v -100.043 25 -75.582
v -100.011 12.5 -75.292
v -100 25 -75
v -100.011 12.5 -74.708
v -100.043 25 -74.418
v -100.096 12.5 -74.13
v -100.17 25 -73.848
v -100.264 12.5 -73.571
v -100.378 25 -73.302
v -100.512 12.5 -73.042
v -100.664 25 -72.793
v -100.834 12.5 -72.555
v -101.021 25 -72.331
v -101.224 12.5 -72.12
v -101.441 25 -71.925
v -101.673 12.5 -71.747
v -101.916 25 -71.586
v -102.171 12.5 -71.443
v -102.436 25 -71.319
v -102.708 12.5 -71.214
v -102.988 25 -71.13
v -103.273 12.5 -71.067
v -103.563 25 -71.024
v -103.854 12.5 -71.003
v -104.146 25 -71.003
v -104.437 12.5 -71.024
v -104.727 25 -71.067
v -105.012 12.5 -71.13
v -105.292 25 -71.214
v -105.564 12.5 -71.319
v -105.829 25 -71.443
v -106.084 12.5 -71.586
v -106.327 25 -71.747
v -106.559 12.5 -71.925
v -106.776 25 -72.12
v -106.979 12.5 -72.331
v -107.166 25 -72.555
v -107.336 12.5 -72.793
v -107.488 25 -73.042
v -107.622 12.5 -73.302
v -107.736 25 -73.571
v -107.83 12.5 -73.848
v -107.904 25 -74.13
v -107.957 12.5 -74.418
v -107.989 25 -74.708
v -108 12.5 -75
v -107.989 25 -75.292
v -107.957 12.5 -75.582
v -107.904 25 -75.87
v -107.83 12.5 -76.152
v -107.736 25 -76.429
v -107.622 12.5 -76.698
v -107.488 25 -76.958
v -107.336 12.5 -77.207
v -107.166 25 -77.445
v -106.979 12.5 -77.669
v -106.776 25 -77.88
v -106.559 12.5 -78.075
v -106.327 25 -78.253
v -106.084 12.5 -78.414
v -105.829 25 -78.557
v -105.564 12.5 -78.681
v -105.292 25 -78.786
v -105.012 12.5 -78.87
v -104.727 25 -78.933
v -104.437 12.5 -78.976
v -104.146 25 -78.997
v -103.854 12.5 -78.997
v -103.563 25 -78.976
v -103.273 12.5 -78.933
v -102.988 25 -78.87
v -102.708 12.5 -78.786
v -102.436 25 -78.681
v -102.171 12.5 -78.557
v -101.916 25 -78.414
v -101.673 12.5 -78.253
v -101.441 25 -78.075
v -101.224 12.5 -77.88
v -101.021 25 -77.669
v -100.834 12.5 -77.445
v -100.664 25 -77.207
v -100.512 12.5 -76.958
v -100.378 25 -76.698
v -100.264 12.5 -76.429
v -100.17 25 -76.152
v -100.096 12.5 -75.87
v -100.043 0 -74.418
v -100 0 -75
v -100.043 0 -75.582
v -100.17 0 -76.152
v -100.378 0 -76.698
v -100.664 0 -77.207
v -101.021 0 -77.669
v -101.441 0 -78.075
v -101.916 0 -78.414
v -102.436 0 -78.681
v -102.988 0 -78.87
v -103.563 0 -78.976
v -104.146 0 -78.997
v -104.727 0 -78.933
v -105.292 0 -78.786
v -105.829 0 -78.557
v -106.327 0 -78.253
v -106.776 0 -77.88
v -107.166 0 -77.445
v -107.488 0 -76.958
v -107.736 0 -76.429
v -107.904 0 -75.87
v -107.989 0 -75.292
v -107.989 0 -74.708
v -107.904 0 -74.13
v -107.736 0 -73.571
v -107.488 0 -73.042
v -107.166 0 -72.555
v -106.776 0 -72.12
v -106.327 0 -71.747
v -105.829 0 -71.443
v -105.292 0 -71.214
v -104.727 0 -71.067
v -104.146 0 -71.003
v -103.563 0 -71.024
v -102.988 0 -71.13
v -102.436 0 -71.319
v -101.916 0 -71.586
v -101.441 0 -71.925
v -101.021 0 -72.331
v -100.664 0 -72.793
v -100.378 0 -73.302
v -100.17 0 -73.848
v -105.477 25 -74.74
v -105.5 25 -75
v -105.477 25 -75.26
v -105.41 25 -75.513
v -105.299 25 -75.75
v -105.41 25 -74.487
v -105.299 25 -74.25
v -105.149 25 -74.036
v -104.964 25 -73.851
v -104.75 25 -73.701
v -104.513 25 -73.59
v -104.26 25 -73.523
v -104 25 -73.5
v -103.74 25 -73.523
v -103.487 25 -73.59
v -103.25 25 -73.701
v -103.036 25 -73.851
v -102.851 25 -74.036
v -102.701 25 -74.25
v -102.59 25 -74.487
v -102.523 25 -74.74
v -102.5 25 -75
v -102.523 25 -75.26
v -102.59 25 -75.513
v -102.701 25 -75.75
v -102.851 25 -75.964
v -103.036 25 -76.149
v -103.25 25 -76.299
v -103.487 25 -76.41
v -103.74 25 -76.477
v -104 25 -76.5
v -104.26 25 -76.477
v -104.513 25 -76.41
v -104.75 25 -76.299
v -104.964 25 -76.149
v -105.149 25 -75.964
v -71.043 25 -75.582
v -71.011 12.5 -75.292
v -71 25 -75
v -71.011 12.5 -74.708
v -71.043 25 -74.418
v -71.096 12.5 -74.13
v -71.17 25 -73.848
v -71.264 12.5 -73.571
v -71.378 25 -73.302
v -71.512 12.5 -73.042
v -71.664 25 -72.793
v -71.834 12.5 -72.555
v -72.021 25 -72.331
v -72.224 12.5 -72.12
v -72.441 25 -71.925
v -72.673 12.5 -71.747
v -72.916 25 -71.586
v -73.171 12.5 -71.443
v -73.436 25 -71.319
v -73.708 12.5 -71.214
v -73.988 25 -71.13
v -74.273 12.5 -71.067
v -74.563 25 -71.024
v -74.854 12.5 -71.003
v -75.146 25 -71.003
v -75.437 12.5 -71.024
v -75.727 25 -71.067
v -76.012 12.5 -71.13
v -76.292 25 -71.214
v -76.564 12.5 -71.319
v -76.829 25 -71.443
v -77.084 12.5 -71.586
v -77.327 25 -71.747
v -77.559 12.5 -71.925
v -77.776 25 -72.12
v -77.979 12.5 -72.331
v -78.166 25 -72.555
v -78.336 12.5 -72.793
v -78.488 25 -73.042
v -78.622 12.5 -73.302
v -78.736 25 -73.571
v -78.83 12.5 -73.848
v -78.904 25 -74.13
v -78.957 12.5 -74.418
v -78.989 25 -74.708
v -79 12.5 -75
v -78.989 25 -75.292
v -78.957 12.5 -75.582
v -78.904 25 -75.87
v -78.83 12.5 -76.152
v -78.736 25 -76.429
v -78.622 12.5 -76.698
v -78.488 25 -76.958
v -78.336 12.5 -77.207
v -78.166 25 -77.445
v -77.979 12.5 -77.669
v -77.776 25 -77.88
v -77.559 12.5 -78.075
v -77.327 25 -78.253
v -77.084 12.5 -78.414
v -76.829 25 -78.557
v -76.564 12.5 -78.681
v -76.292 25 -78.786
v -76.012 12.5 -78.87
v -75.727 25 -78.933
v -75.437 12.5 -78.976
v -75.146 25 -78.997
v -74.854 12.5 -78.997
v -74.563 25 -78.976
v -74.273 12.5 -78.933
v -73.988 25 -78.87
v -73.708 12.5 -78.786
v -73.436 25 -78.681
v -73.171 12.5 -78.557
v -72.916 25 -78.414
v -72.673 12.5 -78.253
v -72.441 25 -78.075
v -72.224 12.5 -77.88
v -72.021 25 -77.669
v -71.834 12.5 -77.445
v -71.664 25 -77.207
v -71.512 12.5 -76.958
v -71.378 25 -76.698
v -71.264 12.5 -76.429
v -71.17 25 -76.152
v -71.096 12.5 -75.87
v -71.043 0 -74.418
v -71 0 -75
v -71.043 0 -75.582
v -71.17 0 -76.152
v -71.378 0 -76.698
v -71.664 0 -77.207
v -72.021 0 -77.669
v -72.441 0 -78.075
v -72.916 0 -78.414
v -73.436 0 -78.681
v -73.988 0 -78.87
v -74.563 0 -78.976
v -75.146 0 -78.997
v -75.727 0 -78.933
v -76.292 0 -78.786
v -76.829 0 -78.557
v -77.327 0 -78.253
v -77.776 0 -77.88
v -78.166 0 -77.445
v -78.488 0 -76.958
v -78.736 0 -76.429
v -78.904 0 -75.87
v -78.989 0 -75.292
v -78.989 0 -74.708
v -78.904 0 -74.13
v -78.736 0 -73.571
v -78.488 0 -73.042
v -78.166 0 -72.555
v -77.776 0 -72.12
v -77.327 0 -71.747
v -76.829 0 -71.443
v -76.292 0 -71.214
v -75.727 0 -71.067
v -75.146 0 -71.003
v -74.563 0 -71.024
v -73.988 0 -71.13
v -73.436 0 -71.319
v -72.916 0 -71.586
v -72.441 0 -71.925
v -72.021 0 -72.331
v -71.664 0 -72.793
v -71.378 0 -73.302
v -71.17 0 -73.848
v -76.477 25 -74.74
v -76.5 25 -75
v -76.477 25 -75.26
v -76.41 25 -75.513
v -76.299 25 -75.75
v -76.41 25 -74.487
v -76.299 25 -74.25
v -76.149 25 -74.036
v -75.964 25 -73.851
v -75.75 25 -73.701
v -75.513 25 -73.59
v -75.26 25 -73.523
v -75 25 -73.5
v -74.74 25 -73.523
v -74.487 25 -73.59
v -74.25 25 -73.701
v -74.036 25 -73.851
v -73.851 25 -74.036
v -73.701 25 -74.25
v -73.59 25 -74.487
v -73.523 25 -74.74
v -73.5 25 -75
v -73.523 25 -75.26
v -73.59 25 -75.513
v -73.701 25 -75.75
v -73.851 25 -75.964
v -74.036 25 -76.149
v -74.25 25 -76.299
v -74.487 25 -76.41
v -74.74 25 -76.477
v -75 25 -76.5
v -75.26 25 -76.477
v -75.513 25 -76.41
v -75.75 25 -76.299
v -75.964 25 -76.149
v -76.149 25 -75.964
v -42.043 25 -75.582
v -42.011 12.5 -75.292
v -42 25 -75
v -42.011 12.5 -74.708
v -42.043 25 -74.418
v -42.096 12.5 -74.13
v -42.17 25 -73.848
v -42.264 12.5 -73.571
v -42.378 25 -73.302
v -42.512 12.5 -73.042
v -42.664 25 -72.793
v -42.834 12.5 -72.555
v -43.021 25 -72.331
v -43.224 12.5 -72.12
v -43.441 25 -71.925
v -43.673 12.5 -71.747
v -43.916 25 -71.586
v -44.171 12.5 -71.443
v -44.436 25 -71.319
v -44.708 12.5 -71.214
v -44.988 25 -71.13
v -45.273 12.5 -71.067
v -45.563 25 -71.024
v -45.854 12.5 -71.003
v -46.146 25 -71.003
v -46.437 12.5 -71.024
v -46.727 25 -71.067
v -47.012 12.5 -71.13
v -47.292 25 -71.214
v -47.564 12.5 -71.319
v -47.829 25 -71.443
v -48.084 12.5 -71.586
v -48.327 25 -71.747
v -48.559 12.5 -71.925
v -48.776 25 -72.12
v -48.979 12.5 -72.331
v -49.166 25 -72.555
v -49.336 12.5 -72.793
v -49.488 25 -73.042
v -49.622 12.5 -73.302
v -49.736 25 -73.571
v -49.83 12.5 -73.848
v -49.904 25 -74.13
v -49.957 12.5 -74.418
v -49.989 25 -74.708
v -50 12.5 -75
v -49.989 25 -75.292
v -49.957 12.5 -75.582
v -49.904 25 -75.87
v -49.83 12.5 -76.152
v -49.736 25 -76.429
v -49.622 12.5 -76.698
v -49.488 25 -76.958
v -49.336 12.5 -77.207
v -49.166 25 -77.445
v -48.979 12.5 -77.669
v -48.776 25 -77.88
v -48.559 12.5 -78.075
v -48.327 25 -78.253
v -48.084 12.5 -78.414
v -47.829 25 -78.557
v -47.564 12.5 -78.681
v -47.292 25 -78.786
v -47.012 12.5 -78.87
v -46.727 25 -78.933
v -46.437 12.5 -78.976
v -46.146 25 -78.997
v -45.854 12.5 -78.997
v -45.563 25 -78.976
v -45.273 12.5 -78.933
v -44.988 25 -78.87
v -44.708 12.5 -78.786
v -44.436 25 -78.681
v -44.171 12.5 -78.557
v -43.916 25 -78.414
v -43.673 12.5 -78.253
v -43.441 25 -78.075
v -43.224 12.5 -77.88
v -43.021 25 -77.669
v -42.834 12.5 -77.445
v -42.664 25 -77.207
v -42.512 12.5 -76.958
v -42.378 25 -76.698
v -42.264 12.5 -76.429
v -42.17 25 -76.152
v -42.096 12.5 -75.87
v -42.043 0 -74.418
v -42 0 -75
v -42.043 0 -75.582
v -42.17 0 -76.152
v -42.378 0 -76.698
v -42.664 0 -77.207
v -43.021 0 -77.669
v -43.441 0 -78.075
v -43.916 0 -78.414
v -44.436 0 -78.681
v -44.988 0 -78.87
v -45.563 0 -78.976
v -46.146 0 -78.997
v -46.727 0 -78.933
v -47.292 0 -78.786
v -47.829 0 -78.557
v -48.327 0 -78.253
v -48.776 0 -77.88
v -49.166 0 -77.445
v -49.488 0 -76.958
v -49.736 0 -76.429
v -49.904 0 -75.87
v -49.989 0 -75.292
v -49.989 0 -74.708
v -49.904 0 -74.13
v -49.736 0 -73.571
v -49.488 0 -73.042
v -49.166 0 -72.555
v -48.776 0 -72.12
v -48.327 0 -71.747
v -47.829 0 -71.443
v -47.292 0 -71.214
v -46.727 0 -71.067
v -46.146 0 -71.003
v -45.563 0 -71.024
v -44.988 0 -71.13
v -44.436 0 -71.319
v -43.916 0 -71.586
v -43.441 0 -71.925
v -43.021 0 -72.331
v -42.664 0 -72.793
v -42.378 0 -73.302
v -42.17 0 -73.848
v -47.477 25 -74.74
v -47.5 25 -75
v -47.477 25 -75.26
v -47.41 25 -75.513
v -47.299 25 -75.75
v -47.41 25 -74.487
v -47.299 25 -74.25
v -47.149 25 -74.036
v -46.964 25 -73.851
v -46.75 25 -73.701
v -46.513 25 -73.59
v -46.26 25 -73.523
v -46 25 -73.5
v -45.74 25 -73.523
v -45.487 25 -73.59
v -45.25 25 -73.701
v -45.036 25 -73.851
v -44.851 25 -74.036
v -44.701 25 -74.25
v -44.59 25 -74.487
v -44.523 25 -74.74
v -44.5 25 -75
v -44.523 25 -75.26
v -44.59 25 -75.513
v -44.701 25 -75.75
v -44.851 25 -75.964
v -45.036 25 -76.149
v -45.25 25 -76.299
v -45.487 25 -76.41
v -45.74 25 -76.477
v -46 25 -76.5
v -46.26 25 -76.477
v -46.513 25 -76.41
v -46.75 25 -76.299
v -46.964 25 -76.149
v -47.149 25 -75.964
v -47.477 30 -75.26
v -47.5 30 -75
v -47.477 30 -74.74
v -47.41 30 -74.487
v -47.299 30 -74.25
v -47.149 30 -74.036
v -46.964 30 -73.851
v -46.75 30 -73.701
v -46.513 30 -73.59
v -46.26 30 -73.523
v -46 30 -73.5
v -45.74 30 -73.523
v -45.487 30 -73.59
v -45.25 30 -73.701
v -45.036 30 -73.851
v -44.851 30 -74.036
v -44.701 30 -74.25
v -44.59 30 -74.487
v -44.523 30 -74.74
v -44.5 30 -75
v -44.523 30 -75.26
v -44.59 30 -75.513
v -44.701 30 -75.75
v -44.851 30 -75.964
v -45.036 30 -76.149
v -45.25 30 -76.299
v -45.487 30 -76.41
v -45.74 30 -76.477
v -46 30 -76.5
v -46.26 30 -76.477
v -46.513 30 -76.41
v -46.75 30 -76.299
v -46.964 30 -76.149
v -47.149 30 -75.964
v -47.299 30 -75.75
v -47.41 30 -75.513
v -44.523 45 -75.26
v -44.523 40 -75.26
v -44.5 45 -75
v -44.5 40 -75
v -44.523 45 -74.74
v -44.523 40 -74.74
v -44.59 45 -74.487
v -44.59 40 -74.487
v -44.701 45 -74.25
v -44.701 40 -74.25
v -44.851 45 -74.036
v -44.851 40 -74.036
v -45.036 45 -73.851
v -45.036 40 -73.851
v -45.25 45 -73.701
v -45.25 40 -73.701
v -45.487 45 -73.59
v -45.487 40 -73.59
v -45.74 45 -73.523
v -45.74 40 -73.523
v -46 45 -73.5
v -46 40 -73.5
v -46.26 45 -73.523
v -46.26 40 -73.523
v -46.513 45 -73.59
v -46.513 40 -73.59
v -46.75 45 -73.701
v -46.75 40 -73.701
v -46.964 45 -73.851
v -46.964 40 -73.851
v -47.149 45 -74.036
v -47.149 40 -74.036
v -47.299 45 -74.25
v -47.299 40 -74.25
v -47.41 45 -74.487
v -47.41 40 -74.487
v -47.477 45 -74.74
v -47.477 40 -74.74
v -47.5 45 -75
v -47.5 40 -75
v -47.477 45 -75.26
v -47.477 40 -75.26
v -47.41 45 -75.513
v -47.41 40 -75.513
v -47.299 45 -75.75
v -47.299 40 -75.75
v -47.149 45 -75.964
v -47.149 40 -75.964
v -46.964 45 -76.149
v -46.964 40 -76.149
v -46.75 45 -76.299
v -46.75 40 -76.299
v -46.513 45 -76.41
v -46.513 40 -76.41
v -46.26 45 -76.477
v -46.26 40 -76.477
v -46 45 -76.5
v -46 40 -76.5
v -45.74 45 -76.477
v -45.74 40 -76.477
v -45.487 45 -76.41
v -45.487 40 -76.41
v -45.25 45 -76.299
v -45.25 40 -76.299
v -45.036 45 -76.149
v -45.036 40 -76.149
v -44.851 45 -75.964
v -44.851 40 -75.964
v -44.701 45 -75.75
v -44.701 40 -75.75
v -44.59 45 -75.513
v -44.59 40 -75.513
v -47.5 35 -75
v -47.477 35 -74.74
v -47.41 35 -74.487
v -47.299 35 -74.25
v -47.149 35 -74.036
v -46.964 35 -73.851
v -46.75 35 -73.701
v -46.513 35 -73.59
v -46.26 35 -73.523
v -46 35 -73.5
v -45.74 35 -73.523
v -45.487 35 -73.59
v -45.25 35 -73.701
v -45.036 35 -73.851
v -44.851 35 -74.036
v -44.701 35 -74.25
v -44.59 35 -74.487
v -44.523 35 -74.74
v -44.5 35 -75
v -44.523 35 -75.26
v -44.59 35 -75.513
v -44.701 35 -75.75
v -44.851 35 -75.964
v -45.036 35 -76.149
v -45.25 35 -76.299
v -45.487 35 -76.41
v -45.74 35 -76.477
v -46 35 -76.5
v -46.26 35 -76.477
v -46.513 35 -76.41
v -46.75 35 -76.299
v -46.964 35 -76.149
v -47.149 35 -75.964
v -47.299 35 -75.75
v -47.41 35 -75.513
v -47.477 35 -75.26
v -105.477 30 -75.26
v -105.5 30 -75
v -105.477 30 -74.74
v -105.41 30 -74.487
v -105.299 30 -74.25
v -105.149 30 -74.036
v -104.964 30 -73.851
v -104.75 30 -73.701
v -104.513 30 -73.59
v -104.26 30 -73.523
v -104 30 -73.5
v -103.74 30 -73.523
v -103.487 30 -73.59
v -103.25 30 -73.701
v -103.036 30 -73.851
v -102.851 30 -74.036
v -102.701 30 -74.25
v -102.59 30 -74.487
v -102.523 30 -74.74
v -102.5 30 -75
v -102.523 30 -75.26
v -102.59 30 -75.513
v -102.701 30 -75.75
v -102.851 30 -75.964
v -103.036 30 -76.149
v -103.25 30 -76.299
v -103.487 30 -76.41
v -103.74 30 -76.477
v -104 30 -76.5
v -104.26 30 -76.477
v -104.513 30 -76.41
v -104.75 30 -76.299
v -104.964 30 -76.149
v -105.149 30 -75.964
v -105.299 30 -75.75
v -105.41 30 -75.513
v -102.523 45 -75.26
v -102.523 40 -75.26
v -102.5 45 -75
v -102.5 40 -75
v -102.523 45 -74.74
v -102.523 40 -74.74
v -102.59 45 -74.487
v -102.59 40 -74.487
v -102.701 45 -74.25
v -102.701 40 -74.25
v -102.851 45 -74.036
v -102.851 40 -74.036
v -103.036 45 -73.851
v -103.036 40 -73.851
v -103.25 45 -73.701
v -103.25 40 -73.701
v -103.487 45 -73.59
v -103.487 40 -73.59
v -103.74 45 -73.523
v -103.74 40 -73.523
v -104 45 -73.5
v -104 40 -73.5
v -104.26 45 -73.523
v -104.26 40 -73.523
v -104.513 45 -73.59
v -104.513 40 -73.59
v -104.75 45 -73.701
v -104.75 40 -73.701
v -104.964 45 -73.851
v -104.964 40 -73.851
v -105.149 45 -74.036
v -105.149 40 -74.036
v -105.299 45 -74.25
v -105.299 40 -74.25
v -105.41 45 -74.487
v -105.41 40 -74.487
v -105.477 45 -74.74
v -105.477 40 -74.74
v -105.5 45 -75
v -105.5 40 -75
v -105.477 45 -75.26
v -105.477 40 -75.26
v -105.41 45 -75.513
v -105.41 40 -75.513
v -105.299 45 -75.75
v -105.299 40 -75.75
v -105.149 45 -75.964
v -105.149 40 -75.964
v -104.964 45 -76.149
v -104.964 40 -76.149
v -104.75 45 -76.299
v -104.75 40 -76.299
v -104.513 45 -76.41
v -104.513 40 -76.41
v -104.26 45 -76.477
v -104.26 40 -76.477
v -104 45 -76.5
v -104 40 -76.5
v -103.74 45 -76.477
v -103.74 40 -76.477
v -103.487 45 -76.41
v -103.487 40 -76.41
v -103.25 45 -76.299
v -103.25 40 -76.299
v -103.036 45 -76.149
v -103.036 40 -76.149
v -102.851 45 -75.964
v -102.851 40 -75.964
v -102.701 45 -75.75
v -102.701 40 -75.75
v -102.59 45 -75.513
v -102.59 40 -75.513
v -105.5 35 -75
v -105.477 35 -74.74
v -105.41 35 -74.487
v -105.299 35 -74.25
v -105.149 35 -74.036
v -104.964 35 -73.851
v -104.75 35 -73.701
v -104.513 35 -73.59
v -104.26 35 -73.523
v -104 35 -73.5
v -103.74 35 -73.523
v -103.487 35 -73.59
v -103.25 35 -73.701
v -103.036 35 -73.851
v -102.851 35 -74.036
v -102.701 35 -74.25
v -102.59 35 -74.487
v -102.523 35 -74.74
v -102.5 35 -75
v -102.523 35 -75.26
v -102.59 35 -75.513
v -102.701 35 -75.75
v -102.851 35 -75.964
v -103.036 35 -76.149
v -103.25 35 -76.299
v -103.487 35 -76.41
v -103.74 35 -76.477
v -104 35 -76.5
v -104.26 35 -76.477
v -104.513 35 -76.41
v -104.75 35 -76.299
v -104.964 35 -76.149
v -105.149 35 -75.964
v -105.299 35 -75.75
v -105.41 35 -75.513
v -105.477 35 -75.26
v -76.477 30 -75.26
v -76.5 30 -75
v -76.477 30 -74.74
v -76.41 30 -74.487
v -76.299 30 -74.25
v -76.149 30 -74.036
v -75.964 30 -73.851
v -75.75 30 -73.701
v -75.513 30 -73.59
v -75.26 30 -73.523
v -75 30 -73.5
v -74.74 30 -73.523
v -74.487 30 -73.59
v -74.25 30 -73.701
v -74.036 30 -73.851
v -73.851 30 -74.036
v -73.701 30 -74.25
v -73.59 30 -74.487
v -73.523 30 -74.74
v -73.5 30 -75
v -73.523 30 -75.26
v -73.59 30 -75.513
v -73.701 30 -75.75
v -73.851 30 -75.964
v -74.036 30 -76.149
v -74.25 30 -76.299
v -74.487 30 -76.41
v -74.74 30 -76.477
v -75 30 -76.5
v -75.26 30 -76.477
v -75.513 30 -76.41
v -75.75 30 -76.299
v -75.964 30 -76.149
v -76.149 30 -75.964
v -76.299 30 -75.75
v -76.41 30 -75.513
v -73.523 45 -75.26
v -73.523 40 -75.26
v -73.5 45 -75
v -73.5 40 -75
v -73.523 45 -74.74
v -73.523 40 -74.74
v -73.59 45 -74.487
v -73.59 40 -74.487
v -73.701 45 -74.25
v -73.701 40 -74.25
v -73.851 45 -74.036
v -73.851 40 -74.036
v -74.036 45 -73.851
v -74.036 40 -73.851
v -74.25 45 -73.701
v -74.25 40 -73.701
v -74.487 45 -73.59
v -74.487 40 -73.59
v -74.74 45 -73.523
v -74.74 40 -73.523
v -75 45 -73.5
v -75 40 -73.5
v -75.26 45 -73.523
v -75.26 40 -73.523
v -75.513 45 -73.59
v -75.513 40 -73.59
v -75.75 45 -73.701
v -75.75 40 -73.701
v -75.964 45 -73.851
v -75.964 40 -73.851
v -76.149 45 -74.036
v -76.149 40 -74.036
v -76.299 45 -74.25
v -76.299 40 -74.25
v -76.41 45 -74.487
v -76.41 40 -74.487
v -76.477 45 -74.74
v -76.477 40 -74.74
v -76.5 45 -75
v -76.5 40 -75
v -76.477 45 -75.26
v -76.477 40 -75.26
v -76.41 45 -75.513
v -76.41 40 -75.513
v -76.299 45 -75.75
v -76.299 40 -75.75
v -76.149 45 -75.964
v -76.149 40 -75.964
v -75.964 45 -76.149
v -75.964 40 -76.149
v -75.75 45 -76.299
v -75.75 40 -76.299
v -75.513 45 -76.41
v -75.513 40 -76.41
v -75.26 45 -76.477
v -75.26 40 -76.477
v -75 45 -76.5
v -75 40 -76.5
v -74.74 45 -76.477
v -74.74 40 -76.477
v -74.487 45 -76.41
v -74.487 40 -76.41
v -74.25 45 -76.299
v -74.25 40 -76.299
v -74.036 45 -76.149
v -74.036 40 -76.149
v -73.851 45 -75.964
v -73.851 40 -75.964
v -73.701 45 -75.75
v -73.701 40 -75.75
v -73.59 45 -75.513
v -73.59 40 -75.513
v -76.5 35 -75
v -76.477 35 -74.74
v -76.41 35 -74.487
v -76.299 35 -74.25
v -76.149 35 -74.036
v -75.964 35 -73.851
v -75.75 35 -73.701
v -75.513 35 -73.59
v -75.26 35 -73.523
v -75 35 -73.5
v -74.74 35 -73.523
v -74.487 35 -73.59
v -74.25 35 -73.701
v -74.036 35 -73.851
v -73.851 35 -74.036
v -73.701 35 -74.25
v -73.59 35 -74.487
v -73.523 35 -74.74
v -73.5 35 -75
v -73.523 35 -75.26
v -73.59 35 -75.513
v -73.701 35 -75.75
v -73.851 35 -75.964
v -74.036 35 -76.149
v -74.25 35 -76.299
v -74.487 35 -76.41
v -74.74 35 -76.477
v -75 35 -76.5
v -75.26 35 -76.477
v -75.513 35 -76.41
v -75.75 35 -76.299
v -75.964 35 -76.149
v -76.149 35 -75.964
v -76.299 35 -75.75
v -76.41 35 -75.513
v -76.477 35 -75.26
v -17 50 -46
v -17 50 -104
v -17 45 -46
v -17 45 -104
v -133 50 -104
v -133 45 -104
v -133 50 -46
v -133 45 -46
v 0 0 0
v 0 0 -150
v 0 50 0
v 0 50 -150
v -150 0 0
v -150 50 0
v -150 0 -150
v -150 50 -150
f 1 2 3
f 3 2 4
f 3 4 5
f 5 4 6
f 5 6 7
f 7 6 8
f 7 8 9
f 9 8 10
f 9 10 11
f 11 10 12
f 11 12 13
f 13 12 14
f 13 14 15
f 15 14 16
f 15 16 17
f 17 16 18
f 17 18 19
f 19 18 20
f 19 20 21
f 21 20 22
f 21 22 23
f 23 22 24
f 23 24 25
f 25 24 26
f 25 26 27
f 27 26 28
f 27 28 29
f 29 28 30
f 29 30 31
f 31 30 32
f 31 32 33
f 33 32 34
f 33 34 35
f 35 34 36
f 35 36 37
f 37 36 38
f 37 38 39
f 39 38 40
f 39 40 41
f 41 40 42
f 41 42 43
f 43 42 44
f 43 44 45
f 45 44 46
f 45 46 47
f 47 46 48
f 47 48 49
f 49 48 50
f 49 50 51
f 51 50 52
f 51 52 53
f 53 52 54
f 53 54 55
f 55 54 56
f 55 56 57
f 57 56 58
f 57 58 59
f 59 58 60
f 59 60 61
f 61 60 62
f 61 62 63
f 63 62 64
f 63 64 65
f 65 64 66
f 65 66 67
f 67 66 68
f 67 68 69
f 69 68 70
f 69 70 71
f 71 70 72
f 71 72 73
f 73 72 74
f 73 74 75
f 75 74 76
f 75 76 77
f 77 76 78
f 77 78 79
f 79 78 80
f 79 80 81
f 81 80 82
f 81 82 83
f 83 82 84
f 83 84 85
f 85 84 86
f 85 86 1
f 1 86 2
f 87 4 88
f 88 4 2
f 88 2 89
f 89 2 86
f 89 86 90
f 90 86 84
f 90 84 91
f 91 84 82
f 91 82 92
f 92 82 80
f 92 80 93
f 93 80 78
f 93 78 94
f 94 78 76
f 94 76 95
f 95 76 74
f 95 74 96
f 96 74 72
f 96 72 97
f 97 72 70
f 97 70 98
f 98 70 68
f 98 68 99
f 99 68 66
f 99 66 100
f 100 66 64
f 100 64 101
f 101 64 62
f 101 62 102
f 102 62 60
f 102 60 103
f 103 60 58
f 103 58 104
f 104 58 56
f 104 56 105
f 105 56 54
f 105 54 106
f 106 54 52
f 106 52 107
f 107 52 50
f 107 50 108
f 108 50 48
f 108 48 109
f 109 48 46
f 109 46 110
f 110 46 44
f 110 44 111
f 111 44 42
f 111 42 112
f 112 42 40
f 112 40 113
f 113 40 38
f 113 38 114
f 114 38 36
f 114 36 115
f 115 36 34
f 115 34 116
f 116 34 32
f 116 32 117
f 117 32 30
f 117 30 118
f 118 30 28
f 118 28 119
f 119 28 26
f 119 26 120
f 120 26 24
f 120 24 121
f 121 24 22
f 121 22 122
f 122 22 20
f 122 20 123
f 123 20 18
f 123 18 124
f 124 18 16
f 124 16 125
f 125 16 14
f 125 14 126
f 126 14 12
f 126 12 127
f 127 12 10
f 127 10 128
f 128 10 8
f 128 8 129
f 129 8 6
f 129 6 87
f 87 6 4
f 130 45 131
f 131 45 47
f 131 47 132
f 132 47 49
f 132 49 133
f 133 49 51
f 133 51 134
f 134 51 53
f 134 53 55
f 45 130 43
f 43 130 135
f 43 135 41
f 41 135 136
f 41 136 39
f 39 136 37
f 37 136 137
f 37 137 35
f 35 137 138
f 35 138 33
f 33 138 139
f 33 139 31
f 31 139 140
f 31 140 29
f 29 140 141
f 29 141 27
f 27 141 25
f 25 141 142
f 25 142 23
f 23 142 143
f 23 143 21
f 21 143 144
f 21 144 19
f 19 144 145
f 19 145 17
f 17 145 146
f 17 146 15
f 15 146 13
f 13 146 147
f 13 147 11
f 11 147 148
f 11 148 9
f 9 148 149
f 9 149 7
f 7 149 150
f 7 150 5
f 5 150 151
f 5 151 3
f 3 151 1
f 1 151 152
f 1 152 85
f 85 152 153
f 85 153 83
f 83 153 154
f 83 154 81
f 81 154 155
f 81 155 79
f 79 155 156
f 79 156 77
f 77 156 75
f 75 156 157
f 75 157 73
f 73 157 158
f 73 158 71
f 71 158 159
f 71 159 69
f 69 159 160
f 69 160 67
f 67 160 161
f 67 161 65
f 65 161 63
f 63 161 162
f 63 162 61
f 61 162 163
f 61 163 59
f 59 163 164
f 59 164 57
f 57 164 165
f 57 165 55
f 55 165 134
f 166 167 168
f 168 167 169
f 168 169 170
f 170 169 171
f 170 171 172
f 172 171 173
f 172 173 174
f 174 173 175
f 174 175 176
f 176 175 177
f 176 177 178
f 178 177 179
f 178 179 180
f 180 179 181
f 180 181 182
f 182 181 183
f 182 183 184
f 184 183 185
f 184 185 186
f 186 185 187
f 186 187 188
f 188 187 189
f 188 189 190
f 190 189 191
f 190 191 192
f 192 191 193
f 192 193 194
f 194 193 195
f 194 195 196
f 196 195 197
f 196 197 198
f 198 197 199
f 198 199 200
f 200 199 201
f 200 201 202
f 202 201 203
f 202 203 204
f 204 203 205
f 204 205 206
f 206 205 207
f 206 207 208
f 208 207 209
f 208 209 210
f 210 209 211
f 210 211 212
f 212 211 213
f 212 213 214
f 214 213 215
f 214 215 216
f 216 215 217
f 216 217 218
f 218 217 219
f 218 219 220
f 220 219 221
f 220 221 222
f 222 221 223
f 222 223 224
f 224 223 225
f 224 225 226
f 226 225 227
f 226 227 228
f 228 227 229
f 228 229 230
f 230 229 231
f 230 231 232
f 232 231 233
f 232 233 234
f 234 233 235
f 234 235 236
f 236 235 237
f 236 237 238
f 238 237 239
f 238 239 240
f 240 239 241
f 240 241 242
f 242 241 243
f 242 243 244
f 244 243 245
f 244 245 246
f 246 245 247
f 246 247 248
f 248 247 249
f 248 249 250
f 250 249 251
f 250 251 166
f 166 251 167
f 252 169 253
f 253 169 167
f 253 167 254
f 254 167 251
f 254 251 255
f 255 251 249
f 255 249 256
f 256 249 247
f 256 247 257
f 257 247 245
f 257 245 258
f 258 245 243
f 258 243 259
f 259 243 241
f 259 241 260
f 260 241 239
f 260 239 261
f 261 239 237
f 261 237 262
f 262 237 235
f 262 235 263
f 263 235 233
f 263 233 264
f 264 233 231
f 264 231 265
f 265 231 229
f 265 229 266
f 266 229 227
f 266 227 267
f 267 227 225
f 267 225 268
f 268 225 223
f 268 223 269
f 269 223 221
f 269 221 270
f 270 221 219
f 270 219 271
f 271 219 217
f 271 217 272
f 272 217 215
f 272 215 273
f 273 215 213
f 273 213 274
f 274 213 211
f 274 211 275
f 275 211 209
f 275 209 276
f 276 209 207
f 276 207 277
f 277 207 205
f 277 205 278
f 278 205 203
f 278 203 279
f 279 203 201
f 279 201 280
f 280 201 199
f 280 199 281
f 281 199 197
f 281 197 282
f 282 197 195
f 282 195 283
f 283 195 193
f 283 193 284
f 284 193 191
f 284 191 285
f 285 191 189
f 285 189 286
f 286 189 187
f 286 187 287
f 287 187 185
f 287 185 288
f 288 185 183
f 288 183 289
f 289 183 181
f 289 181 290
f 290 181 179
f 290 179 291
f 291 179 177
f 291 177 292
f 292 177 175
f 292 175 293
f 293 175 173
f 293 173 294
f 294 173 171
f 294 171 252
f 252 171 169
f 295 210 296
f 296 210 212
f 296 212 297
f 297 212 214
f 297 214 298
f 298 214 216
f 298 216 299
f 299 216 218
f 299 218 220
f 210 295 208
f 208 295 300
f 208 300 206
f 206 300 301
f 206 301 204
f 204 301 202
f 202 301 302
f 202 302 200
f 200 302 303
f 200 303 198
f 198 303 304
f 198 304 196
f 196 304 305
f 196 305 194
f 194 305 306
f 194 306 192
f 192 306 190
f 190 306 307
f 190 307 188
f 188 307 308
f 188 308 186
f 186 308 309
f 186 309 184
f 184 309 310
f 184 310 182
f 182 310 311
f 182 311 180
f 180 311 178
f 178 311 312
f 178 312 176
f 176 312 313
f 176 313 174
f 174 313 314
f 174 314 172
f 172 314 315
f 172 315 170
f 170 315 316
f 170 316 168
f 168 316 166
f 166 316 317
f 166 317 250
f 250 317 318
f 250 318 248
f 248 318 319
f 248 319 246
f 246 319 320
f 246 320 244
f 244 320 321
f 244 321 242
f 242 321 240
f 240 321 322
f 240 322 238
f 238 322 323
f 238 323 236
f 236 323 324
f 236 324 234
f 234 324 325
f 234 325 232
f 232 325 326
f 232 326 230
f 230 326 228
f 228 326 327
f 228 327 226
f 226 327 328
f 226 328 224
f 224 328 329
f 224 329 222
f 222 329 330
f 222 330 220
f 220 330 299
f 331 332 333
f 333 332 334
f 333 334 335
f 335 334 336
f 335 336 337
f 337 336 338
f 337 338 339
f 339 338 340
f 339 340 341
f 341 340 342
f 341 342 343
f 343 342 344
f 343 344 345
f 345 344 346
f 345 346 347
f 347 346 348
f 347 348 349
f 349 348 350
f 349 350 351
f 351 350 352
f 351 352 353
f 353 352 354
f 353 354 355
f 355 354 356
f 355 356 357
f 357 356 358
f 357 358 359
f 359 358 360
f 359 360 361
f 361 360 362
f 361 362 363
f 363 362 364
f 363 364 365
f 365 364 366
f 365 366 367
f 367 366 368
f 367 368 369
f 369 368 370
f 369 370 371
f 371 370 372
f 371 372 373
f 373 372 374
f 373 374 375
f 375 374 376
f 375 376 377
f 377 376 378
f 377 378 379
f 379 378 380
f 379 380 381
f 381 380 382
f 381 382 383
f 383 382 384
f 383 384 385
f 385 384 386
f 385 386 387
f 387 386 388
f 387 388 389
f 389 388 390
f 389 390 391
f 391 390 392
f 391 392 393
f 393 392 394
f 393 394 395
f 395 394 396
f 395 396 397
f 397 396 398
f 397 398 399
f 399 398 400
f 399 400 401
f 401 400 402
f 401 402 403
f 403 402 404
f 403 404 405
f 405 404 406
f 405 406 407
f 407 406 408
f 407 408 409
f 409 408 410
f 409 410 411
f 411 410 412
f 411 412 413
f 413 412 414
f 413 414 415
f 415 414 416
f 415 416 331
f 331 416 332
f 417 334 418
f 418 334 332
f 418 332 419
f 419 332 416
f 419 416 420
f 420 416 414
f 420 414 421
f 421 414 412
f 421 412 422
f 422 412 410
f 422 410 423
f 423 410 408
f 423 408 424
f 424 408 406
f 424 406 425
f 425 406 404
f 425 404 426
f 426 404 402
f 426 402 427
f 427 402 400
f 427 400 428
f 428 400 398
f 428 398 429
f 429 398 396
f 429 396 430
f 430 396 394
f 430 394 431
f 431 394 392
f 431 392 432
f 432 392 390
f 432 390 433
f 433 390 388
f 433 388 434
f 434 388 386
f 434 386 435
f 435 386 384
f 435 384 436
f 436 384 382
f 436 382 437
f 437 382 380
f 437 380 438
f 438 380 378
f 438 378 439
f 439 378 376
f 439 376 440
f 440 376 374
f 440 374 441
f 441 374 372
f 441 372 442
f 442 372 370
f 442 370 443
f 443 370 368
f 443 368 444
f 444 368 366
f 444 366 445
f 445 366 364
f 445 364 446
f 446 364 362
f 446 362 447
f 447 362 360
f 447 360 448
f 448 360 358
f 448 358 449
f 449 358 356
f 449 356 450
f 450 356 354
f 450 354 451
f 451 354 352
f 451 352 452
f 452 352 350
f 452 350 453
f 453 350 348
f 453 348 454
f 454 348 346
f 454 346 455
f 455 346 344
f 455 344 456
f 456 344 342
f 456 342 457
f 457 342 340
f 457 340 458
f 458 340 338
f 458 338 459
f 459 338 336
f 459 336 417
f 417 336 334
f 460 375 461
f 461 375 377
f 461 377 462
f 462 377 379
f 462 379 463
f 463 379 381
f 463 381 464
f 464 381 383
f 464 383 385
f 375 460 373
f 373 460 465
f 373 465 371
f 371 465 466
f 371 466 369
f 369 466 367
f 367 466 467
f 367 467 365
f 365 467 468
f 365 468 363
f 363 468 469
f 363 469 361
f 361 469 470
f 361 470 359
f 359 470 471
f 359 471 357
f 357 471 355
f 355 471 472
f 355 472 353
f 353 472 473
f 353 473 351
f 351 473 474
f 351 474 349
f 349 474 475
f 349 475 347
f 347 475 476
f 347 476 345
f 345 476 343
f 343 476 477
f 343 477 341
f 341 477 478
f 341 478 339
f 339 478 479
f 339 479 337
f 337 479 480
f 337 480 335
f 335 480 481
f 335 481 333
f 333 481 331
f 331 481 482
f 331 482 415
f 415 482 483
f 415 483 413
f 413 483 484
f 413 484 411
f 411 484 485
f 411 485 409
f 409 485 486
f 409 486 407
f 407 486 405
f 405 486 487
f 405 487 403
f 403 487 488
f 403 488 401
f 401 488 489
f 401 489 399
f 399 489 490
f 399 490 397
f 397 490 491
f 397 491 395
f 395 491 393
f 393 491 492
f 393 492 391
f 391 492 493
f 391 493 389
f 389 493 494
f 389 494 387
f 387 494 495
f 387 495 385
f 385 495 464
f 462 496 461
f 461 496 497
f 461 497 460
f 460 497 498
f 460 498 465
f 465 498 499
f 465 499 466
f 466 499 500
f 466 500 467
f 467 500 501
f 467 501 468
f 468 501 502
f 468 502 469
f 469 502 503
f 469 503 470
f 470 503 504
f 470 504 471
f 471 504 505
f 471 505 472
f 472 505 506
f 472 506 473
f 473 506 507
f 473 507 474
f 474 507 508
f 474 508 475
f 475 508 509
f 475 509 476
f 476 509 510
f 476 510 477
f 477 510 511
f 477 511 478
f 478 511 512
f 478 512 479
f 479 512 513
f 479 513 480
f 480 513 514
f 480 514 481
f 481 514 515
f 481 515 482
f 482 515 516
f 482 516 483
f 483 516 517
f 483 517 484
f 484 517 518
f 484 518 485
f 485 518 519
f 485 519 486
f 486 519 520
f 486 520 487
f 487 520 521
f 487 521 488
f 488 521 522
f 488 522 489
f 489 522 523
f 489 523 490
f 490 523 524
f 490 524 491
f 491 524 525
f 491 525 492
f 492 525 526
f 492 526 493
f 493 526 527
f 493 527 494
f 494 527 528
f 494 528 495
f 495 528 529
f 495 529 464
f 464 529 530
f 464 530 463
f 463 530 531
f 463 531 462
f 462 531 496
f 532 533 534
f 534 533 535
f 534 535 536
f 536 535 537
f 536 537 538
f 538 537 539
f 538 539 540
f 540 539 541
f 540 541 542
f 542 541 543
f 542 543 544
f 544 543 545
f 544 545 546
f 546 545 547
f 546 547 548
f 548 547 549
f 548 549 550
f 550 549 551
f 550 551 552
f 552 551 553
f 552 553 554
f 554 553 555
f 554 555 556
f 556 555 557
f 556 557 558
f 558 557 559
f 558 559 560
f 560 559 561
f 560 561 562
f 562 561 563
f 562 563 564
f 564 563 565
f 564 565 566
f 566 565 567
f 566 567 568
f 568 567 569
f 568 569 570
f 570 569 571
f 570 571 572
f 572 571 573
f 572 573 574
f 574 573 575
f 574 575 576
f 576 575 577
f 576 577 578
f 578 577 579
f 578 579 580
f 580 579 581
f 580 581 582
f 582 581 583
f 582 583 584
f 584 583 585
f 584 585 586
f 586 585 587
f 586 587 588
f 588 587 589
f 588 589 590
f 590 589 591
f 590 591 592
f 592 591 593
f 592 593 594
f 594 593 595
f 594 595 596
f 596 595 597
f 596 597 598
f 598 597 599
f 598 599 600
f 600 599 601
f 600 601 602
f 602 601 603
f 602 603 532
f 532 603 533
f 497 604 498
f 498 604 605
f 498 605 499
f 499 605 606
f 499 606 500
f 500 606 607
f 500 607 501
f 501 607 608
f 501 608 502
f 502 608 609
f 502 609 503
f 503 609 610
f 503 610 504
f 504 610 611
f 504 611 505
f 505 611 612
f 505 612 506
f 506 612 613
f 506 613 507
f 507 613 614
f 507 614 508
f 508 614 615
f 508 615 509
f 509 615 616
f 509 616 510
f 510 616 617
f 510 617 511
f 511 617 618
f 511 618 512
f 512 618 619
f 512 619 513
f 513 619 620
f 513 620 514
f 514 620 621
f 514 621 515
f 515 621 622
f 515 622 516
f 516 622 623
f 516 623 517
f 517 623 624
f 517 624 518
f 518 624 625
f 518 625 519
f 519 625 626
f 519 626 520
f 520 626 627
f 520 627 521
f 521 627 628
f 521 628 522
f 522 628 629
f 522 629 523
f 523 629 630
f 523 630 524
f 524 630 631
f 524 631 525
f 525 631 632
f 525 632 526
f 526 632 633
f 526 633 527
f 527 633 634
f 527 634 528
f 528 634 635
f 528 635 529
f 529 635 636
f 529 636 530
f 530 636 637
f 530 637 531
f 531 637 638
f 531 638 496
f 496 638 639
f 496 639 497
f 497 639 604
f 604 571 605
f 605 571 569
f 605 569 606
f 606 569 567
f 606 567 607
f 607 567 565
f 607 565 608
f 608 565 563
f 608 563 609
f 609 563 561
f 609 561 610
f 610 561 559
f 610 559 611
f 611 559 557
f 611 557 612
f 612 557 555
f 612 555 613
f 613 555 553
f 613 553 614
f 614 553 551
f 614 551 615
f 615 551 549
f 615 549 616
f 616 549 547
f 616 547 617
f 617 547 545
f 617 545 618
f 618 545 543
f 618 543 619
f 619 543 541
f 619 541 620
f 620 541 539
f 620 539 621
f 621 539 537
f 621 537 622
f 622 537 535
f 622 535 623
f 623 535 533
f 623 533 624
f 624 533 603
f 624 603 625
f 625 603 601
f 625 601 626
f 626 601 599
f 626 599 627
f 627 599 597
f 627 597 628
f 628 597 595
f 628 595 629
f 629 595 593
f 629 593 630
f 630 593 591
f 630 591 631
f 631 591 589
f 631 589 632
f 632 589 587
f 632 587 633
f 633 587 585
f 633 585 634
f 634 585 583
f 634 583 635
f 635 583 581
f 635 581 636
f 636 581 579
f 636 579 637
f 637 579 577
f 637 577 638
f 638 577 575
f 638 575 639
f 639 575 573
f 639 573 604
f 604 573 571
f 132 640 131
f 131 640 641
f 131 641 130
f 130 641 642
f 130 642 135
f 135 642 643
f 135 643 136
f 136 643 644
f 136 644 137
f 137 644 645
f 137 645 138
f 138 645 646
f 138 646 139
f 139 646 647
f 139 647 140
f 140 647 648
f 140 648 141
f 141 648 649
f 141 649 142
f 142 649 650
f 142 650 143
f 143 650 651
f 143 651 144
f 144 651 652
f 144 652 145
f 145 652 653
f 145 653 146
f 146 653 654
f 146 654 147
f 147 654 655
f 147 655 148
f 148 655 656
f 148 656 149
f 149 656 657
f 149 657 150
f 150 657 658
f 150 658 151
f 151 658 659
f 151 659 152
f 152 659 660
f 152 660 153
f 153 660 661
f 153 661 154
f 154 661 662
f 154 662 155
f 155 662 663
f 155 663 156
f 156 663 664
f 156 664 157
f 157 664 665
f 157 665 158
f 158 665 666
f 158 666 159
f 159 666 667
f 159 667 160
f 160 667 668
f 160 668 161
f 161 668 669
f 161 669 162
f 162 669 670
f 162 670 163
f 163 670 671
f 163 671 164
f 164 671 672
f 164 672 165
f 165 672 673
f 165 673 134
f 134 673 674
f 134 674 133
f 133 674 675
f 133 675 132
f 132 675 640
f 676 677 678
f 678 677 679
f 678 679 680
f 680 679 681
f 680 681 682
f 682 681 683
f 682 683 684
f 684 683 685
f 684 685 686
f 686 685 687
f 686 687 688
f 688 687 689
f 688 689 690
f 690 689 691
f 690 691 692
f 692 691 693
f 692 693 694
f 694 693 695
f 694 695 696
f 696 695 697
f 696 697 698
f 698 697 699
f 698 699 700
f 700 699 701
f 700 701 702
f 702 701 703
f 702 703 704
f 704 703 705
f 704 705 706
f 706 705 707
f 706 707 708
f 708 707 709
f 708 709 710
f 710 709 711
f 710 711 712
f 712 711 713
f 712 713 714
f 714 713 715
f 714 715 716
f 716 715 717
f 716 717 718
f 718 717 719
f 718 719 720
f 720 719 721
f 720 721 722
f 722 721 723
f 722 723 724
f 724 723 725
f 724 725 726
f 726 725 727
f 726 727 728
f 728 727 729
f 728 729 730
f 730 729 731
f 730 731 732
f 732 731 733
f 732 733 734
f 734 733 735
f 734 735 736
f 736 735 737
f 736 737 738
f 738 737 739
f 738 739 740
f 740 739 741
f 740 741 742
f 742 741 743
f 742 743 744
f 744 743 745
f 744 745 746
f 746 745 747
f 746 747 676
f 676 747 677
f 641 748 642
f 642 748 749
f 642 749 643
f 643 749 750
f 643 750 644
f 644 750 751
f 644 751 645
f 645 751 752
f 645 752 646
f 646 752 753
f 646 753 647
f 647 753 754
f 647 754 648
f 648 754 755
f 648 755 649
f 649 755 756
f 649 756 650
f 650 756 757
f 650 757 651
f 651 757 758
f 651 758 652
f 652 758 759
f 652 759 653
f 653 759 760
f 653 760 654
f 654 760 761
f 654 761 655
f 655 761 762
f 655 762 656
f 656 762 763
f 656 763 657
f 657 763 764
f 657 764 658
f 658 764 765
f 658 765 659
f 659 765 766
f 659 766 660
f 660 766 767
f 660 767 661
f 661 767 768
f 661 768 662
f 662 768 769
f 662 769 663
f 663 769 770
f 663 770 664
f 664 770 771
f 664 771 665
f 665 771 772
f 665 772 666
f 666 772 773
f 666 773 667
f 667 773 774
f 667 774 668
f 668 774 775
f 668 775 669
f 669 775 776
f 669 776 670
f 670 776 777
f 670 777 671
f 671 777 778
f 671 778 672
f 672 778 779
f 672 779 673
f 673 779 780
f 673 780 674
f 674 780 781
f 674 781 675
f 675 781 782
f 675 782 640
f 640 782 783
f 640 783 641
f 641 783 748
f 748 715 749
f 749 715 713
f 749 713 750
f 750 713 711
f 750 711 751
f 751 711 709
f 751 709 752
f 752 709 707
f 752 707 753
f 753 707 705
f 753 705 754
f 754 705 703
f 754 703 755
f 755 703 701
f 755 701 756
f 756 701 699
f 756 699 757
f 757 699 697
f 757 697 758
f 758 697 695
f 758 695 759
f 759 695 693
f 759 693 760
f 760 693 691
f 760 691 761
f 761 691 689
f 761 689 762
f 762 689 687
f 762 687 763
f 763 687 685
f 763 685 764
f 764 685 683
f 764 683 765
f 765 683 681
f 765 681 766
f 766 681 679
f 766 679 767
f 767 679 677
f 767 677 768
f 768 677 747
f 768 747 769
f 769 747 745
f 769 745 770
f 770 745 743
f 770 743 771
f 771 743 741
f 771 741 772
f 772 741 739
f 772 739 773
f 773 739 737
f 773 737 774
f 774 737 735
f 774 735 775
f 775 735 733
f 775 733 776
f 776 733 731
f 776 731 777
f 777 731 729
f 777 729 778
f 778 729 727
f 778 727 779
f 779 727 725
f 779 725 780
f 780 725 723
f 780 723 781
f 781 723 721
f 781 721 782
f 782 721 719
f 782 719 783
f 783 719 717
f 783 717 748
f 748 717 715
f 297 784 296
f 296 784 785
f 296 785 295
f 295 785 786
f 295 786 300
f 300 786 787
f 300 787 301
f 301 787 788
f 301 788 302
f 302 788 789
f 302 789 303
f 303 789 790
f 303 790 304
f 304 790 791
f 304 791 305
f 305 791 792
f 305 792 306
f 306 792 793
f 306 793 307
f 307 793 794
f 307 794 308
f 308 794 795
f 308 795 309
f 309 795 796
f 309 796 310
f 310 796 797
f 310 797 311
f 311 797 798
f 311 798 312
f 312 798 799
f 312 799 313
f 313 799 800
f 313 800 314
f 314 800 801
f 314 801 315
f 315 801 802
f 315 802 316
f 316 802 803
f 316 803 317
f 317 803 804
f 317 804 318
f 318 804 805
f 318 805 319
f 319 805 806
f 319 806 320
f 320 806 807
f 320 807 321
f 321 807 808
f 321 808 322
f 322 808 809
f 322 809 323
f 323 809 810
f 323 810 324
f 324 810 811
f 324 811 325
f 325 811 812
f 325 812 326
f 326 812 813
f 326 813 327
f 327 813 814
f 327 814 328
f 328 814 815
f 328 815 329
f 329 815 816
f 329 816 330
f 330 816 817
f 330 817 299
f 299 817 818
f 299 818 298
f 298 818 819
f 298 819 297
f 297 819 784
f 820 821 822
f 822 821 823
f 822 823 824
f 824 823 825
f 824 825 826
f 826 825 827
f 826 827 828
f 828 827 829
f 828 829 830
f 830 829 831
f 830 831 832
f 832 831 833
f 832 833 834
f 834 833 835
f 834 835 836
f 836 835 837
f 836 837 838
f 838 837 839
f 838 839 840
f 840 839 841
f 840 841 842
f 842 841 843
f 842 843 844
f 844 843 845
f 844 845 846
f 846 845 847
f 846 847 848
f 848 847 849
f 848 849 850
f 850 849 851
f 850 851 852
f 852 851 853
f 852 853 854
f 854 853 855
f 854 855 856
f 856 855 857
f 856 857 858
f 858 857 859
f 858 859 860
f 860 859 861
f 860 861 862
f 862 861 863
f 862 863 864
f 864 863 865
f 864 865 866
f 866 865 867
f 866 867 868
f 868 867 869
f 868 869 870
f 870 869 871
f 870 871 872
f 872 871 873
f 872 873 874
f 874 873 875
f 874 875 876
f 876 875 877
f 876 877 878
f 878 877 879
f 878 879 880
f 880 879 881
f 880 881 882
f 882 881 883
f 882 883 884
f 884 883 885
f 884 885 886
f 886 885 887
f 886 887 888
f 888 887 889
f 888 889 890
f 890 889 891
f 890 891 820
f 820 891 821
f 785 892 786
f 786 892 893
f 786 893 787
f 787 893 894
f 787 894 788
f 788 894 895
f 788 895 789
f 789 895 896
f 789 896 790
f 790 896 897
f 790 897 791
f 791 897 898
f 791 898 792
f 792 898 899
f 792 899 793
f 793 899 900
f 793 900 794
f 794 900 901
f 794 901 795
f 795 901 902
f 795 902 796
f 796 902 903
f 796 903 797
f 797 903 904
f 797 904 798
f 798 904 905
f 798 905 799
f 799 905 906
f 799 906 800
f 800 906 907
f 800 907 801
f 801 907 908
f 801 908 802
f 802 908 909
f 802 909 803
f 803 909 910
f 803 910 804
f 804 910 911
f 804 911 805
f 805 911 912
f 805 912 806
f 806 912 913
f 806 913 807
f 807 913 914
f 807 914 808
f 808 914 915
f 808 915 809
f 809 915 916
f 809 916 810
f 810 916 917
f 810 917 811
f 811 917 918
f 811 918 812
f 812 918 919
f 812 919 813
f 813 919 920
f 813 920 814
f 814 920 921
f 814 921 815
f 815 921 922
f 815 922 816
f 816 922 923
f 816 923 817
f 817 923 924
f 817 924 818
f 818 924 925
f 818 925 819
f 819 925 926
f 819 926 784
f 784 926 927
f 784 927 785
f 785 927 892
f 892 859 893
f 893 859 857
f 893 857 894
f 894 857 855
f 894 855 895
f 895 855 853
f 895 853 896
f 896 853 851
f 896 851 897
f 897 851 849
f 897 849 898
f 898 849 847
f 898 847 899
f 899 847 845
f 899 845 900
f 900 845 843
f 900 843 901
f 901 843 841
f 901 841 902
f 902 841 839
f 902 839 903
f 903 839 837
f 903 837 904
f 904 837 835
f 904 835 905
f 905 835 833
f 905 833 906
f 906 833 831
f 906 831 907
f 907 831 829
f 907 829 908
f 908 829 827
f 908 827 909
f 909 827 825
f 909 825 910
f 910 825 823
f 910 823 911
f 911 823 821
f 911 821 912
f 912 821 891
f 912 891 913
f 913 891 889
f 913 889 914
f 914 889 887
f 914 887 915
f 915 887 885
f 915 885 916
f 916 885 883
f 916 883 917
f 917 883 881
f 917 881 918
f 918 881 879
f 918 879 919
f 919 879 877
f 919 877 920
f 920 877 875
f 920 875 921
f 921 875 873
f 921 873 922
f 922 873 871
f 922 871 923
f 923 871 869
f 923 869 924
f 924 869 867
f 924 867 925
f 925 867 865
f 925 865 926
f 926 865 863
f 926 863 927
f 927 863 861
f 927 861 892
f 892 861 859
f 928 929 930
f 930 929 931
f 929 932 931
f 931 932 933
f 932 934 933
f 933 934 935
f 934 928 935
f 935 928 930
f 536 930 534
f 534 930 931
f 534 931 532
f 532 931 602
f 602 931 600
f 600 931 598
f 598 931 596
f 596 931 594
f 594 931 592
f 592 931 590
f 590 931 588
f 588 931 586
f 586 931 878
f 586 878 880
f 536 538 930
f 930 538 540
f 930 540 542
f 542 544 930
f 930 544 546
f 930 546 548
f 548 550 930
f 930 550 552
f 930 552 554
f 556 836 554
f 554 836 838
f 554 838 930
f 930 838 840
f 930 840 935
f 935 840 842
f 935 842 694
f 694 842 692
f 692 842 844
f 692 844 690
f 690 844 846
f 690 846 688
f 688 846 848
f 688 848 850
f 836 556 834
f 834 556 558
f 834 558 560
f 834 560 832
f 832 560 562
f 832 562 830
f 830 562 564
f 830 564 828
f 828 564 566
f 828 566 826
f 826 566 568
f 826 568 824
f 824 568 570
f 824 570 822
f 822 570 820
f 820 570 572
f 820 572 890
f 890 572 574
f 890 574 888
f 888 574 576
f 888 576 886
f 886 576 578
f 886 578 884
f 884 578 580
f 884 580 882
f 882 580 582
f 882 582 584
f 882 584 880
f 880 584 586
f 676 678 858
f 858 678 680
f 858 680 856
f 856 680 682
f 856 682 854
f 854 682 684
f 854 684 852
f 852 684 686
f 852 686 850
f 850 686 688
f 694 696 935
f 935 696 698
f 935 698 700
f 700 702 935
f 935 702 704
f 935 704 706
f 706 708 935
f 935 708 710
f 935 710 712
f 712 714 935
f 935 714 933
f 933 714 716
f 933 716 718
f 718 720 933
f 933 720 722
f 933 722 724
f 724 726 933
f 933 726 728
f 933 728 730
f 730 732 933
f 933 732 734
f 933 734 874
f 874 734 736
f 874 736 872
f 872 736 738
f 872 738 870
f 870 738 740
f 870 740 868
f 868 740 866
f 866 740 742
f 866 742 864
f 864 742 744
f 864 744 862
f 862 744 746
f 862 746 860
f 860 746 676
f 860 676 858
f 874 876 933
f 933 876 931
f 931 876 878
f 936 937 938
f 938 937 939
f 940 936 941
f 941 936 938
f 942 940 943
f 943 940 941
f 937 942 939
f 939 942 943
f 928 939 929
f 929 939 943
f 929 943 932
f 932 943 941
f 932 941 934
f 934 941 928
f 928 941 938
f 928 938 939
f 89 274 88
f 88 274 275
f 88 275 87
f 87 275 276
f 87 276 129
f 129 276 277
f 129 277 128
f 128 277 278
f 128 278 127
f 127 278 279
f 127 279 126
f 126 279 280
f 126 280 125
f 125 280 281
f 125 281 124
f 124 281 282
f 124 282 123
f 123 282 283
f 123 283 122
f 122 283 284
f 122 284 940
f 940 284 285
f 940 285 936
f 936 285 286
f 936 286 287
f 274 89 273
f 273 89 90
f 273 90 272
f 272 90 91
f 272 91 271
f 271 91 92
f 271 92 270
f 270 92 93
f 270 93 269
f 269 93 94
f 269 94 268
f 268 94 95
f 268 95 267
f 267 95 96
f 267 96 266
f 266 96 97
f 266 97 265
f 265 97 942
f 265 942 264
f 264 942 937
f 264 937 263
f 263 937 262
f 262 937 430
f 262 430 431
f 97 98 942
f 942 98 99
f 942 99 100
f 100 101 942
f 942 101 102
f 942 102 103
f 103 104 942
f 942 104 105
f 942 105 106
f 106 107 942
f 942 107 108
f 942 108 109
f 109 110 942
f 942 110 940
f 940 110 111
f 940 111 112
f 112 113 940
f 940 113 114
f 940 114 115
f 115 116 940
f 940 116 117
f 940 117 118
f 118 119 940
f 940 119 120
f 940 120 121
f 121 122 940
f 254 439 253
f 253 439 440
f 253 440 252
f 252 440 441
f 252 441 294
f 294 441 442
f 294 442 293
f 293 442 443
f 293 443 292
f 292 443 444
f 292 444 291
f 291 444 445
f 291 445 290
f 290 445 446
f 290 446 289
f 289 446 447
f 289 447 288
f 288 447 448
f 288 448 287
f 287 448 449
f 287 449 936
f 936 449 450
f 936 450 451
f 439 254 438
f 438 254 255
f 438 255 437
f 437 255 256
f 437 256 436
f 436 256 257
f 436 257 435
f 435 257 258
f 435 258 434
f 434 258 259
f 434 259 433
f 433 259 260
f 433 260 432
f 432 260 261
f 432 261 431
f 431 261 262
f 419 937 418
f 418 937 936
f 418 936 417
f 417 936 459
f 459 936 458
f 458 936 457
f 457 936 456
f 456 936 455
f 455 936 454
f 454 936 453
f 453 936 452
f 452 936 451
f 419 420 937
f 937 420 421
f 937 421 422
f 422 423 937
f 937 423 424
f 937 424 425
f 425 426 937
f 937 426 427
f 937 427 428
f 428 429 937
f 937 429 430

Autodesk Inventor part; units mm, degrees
ref_plane "YZ Plane" through (0, 0, 0) normal (1, 0, 0) x (0, 1, 0)
ref_plane "XZ Plane" through (0, 0, 0) normal (0, 1, 0) x (-1, 0, 0)
ref_plane "XY Plane" through (0, 0, 0) normal (0, 0, 1) x (1, 0, 0)
sketch "Sketch1" plane through (0, 0, 0) normal (0, 1, 0) x (-1, 0, 0)
  line L0 (0, 0) -> (150, 0)
  line L1 (150, 0) -> (150, -150)
  line L2 (150, -150) -> (0, -150)
  line L3 (0, -150) -> (0, 0)
  dimension "d0" = 150
  dimension "d1" = 150
extrude "Extrusion1" add sketch "Sketch1" along normal blind 50
sketch "Sketch2" plane through (0, 50, 0) normal (0, 1, 0) x (1, 0, 0)
  line L0 (-150, 150) -> (-150, 0) projected
  line L1 (-150, 0) -> (0, 0) projected
  line L2 (-133, 104) -> (-17, 104)
  line L3 (-17, 104) -> (-17, 46)
  line L4 (-17, 46) -> (-133, 46)
  line L5 (-133, 46) -> (-133, 104)
extrude "Extrusion2" cut sketch "Sketch2" against normal blind 5
sketch "Sketch3" plane through (0, 45, 0) normal (0, 1, 0) x (1, 0, 0)
  line L0 (-17, 104) -> (-17, 46) projected
  line L1 (-133, 46) -> (-133, 104) projected
  circle A0 centre (-104, 75) radius 1.5
  circle A1 centre (-75, 75) radius 1.5
  circle A2 centre (-46, 75) radius 1.5
  point P0 (0, 0)
  dimension "d14" = 3
extrude "Extrusion3" cut sketch "Sketch3" against normal up to surface (45 mm away)
sketch "Sketch4" plane through (0, 0, 0) normal (0, -1, 0) x (1, 0, 0)
  circle A0 centre (-46, -75) radius 1.5 projected
  circle A1 centre (-46, -75) radius 4
  circle A2 centre (-75, -75) radius 1.5 projected
  circle A3 centre (-75, -75) radius 4
  circle A4 centre (-104, -75) radius 1.5 projected
  circle A5 centre (-104, -75) radius 4
  point P0 (0, 0)
  dimension "d17" = 8
extrude "Extrusion4" cut sketch "Sketch4" against normal blind 25 contours A0 | A1 | A2 | A3 | A4 | A5
properties part number "Base_Mount"
